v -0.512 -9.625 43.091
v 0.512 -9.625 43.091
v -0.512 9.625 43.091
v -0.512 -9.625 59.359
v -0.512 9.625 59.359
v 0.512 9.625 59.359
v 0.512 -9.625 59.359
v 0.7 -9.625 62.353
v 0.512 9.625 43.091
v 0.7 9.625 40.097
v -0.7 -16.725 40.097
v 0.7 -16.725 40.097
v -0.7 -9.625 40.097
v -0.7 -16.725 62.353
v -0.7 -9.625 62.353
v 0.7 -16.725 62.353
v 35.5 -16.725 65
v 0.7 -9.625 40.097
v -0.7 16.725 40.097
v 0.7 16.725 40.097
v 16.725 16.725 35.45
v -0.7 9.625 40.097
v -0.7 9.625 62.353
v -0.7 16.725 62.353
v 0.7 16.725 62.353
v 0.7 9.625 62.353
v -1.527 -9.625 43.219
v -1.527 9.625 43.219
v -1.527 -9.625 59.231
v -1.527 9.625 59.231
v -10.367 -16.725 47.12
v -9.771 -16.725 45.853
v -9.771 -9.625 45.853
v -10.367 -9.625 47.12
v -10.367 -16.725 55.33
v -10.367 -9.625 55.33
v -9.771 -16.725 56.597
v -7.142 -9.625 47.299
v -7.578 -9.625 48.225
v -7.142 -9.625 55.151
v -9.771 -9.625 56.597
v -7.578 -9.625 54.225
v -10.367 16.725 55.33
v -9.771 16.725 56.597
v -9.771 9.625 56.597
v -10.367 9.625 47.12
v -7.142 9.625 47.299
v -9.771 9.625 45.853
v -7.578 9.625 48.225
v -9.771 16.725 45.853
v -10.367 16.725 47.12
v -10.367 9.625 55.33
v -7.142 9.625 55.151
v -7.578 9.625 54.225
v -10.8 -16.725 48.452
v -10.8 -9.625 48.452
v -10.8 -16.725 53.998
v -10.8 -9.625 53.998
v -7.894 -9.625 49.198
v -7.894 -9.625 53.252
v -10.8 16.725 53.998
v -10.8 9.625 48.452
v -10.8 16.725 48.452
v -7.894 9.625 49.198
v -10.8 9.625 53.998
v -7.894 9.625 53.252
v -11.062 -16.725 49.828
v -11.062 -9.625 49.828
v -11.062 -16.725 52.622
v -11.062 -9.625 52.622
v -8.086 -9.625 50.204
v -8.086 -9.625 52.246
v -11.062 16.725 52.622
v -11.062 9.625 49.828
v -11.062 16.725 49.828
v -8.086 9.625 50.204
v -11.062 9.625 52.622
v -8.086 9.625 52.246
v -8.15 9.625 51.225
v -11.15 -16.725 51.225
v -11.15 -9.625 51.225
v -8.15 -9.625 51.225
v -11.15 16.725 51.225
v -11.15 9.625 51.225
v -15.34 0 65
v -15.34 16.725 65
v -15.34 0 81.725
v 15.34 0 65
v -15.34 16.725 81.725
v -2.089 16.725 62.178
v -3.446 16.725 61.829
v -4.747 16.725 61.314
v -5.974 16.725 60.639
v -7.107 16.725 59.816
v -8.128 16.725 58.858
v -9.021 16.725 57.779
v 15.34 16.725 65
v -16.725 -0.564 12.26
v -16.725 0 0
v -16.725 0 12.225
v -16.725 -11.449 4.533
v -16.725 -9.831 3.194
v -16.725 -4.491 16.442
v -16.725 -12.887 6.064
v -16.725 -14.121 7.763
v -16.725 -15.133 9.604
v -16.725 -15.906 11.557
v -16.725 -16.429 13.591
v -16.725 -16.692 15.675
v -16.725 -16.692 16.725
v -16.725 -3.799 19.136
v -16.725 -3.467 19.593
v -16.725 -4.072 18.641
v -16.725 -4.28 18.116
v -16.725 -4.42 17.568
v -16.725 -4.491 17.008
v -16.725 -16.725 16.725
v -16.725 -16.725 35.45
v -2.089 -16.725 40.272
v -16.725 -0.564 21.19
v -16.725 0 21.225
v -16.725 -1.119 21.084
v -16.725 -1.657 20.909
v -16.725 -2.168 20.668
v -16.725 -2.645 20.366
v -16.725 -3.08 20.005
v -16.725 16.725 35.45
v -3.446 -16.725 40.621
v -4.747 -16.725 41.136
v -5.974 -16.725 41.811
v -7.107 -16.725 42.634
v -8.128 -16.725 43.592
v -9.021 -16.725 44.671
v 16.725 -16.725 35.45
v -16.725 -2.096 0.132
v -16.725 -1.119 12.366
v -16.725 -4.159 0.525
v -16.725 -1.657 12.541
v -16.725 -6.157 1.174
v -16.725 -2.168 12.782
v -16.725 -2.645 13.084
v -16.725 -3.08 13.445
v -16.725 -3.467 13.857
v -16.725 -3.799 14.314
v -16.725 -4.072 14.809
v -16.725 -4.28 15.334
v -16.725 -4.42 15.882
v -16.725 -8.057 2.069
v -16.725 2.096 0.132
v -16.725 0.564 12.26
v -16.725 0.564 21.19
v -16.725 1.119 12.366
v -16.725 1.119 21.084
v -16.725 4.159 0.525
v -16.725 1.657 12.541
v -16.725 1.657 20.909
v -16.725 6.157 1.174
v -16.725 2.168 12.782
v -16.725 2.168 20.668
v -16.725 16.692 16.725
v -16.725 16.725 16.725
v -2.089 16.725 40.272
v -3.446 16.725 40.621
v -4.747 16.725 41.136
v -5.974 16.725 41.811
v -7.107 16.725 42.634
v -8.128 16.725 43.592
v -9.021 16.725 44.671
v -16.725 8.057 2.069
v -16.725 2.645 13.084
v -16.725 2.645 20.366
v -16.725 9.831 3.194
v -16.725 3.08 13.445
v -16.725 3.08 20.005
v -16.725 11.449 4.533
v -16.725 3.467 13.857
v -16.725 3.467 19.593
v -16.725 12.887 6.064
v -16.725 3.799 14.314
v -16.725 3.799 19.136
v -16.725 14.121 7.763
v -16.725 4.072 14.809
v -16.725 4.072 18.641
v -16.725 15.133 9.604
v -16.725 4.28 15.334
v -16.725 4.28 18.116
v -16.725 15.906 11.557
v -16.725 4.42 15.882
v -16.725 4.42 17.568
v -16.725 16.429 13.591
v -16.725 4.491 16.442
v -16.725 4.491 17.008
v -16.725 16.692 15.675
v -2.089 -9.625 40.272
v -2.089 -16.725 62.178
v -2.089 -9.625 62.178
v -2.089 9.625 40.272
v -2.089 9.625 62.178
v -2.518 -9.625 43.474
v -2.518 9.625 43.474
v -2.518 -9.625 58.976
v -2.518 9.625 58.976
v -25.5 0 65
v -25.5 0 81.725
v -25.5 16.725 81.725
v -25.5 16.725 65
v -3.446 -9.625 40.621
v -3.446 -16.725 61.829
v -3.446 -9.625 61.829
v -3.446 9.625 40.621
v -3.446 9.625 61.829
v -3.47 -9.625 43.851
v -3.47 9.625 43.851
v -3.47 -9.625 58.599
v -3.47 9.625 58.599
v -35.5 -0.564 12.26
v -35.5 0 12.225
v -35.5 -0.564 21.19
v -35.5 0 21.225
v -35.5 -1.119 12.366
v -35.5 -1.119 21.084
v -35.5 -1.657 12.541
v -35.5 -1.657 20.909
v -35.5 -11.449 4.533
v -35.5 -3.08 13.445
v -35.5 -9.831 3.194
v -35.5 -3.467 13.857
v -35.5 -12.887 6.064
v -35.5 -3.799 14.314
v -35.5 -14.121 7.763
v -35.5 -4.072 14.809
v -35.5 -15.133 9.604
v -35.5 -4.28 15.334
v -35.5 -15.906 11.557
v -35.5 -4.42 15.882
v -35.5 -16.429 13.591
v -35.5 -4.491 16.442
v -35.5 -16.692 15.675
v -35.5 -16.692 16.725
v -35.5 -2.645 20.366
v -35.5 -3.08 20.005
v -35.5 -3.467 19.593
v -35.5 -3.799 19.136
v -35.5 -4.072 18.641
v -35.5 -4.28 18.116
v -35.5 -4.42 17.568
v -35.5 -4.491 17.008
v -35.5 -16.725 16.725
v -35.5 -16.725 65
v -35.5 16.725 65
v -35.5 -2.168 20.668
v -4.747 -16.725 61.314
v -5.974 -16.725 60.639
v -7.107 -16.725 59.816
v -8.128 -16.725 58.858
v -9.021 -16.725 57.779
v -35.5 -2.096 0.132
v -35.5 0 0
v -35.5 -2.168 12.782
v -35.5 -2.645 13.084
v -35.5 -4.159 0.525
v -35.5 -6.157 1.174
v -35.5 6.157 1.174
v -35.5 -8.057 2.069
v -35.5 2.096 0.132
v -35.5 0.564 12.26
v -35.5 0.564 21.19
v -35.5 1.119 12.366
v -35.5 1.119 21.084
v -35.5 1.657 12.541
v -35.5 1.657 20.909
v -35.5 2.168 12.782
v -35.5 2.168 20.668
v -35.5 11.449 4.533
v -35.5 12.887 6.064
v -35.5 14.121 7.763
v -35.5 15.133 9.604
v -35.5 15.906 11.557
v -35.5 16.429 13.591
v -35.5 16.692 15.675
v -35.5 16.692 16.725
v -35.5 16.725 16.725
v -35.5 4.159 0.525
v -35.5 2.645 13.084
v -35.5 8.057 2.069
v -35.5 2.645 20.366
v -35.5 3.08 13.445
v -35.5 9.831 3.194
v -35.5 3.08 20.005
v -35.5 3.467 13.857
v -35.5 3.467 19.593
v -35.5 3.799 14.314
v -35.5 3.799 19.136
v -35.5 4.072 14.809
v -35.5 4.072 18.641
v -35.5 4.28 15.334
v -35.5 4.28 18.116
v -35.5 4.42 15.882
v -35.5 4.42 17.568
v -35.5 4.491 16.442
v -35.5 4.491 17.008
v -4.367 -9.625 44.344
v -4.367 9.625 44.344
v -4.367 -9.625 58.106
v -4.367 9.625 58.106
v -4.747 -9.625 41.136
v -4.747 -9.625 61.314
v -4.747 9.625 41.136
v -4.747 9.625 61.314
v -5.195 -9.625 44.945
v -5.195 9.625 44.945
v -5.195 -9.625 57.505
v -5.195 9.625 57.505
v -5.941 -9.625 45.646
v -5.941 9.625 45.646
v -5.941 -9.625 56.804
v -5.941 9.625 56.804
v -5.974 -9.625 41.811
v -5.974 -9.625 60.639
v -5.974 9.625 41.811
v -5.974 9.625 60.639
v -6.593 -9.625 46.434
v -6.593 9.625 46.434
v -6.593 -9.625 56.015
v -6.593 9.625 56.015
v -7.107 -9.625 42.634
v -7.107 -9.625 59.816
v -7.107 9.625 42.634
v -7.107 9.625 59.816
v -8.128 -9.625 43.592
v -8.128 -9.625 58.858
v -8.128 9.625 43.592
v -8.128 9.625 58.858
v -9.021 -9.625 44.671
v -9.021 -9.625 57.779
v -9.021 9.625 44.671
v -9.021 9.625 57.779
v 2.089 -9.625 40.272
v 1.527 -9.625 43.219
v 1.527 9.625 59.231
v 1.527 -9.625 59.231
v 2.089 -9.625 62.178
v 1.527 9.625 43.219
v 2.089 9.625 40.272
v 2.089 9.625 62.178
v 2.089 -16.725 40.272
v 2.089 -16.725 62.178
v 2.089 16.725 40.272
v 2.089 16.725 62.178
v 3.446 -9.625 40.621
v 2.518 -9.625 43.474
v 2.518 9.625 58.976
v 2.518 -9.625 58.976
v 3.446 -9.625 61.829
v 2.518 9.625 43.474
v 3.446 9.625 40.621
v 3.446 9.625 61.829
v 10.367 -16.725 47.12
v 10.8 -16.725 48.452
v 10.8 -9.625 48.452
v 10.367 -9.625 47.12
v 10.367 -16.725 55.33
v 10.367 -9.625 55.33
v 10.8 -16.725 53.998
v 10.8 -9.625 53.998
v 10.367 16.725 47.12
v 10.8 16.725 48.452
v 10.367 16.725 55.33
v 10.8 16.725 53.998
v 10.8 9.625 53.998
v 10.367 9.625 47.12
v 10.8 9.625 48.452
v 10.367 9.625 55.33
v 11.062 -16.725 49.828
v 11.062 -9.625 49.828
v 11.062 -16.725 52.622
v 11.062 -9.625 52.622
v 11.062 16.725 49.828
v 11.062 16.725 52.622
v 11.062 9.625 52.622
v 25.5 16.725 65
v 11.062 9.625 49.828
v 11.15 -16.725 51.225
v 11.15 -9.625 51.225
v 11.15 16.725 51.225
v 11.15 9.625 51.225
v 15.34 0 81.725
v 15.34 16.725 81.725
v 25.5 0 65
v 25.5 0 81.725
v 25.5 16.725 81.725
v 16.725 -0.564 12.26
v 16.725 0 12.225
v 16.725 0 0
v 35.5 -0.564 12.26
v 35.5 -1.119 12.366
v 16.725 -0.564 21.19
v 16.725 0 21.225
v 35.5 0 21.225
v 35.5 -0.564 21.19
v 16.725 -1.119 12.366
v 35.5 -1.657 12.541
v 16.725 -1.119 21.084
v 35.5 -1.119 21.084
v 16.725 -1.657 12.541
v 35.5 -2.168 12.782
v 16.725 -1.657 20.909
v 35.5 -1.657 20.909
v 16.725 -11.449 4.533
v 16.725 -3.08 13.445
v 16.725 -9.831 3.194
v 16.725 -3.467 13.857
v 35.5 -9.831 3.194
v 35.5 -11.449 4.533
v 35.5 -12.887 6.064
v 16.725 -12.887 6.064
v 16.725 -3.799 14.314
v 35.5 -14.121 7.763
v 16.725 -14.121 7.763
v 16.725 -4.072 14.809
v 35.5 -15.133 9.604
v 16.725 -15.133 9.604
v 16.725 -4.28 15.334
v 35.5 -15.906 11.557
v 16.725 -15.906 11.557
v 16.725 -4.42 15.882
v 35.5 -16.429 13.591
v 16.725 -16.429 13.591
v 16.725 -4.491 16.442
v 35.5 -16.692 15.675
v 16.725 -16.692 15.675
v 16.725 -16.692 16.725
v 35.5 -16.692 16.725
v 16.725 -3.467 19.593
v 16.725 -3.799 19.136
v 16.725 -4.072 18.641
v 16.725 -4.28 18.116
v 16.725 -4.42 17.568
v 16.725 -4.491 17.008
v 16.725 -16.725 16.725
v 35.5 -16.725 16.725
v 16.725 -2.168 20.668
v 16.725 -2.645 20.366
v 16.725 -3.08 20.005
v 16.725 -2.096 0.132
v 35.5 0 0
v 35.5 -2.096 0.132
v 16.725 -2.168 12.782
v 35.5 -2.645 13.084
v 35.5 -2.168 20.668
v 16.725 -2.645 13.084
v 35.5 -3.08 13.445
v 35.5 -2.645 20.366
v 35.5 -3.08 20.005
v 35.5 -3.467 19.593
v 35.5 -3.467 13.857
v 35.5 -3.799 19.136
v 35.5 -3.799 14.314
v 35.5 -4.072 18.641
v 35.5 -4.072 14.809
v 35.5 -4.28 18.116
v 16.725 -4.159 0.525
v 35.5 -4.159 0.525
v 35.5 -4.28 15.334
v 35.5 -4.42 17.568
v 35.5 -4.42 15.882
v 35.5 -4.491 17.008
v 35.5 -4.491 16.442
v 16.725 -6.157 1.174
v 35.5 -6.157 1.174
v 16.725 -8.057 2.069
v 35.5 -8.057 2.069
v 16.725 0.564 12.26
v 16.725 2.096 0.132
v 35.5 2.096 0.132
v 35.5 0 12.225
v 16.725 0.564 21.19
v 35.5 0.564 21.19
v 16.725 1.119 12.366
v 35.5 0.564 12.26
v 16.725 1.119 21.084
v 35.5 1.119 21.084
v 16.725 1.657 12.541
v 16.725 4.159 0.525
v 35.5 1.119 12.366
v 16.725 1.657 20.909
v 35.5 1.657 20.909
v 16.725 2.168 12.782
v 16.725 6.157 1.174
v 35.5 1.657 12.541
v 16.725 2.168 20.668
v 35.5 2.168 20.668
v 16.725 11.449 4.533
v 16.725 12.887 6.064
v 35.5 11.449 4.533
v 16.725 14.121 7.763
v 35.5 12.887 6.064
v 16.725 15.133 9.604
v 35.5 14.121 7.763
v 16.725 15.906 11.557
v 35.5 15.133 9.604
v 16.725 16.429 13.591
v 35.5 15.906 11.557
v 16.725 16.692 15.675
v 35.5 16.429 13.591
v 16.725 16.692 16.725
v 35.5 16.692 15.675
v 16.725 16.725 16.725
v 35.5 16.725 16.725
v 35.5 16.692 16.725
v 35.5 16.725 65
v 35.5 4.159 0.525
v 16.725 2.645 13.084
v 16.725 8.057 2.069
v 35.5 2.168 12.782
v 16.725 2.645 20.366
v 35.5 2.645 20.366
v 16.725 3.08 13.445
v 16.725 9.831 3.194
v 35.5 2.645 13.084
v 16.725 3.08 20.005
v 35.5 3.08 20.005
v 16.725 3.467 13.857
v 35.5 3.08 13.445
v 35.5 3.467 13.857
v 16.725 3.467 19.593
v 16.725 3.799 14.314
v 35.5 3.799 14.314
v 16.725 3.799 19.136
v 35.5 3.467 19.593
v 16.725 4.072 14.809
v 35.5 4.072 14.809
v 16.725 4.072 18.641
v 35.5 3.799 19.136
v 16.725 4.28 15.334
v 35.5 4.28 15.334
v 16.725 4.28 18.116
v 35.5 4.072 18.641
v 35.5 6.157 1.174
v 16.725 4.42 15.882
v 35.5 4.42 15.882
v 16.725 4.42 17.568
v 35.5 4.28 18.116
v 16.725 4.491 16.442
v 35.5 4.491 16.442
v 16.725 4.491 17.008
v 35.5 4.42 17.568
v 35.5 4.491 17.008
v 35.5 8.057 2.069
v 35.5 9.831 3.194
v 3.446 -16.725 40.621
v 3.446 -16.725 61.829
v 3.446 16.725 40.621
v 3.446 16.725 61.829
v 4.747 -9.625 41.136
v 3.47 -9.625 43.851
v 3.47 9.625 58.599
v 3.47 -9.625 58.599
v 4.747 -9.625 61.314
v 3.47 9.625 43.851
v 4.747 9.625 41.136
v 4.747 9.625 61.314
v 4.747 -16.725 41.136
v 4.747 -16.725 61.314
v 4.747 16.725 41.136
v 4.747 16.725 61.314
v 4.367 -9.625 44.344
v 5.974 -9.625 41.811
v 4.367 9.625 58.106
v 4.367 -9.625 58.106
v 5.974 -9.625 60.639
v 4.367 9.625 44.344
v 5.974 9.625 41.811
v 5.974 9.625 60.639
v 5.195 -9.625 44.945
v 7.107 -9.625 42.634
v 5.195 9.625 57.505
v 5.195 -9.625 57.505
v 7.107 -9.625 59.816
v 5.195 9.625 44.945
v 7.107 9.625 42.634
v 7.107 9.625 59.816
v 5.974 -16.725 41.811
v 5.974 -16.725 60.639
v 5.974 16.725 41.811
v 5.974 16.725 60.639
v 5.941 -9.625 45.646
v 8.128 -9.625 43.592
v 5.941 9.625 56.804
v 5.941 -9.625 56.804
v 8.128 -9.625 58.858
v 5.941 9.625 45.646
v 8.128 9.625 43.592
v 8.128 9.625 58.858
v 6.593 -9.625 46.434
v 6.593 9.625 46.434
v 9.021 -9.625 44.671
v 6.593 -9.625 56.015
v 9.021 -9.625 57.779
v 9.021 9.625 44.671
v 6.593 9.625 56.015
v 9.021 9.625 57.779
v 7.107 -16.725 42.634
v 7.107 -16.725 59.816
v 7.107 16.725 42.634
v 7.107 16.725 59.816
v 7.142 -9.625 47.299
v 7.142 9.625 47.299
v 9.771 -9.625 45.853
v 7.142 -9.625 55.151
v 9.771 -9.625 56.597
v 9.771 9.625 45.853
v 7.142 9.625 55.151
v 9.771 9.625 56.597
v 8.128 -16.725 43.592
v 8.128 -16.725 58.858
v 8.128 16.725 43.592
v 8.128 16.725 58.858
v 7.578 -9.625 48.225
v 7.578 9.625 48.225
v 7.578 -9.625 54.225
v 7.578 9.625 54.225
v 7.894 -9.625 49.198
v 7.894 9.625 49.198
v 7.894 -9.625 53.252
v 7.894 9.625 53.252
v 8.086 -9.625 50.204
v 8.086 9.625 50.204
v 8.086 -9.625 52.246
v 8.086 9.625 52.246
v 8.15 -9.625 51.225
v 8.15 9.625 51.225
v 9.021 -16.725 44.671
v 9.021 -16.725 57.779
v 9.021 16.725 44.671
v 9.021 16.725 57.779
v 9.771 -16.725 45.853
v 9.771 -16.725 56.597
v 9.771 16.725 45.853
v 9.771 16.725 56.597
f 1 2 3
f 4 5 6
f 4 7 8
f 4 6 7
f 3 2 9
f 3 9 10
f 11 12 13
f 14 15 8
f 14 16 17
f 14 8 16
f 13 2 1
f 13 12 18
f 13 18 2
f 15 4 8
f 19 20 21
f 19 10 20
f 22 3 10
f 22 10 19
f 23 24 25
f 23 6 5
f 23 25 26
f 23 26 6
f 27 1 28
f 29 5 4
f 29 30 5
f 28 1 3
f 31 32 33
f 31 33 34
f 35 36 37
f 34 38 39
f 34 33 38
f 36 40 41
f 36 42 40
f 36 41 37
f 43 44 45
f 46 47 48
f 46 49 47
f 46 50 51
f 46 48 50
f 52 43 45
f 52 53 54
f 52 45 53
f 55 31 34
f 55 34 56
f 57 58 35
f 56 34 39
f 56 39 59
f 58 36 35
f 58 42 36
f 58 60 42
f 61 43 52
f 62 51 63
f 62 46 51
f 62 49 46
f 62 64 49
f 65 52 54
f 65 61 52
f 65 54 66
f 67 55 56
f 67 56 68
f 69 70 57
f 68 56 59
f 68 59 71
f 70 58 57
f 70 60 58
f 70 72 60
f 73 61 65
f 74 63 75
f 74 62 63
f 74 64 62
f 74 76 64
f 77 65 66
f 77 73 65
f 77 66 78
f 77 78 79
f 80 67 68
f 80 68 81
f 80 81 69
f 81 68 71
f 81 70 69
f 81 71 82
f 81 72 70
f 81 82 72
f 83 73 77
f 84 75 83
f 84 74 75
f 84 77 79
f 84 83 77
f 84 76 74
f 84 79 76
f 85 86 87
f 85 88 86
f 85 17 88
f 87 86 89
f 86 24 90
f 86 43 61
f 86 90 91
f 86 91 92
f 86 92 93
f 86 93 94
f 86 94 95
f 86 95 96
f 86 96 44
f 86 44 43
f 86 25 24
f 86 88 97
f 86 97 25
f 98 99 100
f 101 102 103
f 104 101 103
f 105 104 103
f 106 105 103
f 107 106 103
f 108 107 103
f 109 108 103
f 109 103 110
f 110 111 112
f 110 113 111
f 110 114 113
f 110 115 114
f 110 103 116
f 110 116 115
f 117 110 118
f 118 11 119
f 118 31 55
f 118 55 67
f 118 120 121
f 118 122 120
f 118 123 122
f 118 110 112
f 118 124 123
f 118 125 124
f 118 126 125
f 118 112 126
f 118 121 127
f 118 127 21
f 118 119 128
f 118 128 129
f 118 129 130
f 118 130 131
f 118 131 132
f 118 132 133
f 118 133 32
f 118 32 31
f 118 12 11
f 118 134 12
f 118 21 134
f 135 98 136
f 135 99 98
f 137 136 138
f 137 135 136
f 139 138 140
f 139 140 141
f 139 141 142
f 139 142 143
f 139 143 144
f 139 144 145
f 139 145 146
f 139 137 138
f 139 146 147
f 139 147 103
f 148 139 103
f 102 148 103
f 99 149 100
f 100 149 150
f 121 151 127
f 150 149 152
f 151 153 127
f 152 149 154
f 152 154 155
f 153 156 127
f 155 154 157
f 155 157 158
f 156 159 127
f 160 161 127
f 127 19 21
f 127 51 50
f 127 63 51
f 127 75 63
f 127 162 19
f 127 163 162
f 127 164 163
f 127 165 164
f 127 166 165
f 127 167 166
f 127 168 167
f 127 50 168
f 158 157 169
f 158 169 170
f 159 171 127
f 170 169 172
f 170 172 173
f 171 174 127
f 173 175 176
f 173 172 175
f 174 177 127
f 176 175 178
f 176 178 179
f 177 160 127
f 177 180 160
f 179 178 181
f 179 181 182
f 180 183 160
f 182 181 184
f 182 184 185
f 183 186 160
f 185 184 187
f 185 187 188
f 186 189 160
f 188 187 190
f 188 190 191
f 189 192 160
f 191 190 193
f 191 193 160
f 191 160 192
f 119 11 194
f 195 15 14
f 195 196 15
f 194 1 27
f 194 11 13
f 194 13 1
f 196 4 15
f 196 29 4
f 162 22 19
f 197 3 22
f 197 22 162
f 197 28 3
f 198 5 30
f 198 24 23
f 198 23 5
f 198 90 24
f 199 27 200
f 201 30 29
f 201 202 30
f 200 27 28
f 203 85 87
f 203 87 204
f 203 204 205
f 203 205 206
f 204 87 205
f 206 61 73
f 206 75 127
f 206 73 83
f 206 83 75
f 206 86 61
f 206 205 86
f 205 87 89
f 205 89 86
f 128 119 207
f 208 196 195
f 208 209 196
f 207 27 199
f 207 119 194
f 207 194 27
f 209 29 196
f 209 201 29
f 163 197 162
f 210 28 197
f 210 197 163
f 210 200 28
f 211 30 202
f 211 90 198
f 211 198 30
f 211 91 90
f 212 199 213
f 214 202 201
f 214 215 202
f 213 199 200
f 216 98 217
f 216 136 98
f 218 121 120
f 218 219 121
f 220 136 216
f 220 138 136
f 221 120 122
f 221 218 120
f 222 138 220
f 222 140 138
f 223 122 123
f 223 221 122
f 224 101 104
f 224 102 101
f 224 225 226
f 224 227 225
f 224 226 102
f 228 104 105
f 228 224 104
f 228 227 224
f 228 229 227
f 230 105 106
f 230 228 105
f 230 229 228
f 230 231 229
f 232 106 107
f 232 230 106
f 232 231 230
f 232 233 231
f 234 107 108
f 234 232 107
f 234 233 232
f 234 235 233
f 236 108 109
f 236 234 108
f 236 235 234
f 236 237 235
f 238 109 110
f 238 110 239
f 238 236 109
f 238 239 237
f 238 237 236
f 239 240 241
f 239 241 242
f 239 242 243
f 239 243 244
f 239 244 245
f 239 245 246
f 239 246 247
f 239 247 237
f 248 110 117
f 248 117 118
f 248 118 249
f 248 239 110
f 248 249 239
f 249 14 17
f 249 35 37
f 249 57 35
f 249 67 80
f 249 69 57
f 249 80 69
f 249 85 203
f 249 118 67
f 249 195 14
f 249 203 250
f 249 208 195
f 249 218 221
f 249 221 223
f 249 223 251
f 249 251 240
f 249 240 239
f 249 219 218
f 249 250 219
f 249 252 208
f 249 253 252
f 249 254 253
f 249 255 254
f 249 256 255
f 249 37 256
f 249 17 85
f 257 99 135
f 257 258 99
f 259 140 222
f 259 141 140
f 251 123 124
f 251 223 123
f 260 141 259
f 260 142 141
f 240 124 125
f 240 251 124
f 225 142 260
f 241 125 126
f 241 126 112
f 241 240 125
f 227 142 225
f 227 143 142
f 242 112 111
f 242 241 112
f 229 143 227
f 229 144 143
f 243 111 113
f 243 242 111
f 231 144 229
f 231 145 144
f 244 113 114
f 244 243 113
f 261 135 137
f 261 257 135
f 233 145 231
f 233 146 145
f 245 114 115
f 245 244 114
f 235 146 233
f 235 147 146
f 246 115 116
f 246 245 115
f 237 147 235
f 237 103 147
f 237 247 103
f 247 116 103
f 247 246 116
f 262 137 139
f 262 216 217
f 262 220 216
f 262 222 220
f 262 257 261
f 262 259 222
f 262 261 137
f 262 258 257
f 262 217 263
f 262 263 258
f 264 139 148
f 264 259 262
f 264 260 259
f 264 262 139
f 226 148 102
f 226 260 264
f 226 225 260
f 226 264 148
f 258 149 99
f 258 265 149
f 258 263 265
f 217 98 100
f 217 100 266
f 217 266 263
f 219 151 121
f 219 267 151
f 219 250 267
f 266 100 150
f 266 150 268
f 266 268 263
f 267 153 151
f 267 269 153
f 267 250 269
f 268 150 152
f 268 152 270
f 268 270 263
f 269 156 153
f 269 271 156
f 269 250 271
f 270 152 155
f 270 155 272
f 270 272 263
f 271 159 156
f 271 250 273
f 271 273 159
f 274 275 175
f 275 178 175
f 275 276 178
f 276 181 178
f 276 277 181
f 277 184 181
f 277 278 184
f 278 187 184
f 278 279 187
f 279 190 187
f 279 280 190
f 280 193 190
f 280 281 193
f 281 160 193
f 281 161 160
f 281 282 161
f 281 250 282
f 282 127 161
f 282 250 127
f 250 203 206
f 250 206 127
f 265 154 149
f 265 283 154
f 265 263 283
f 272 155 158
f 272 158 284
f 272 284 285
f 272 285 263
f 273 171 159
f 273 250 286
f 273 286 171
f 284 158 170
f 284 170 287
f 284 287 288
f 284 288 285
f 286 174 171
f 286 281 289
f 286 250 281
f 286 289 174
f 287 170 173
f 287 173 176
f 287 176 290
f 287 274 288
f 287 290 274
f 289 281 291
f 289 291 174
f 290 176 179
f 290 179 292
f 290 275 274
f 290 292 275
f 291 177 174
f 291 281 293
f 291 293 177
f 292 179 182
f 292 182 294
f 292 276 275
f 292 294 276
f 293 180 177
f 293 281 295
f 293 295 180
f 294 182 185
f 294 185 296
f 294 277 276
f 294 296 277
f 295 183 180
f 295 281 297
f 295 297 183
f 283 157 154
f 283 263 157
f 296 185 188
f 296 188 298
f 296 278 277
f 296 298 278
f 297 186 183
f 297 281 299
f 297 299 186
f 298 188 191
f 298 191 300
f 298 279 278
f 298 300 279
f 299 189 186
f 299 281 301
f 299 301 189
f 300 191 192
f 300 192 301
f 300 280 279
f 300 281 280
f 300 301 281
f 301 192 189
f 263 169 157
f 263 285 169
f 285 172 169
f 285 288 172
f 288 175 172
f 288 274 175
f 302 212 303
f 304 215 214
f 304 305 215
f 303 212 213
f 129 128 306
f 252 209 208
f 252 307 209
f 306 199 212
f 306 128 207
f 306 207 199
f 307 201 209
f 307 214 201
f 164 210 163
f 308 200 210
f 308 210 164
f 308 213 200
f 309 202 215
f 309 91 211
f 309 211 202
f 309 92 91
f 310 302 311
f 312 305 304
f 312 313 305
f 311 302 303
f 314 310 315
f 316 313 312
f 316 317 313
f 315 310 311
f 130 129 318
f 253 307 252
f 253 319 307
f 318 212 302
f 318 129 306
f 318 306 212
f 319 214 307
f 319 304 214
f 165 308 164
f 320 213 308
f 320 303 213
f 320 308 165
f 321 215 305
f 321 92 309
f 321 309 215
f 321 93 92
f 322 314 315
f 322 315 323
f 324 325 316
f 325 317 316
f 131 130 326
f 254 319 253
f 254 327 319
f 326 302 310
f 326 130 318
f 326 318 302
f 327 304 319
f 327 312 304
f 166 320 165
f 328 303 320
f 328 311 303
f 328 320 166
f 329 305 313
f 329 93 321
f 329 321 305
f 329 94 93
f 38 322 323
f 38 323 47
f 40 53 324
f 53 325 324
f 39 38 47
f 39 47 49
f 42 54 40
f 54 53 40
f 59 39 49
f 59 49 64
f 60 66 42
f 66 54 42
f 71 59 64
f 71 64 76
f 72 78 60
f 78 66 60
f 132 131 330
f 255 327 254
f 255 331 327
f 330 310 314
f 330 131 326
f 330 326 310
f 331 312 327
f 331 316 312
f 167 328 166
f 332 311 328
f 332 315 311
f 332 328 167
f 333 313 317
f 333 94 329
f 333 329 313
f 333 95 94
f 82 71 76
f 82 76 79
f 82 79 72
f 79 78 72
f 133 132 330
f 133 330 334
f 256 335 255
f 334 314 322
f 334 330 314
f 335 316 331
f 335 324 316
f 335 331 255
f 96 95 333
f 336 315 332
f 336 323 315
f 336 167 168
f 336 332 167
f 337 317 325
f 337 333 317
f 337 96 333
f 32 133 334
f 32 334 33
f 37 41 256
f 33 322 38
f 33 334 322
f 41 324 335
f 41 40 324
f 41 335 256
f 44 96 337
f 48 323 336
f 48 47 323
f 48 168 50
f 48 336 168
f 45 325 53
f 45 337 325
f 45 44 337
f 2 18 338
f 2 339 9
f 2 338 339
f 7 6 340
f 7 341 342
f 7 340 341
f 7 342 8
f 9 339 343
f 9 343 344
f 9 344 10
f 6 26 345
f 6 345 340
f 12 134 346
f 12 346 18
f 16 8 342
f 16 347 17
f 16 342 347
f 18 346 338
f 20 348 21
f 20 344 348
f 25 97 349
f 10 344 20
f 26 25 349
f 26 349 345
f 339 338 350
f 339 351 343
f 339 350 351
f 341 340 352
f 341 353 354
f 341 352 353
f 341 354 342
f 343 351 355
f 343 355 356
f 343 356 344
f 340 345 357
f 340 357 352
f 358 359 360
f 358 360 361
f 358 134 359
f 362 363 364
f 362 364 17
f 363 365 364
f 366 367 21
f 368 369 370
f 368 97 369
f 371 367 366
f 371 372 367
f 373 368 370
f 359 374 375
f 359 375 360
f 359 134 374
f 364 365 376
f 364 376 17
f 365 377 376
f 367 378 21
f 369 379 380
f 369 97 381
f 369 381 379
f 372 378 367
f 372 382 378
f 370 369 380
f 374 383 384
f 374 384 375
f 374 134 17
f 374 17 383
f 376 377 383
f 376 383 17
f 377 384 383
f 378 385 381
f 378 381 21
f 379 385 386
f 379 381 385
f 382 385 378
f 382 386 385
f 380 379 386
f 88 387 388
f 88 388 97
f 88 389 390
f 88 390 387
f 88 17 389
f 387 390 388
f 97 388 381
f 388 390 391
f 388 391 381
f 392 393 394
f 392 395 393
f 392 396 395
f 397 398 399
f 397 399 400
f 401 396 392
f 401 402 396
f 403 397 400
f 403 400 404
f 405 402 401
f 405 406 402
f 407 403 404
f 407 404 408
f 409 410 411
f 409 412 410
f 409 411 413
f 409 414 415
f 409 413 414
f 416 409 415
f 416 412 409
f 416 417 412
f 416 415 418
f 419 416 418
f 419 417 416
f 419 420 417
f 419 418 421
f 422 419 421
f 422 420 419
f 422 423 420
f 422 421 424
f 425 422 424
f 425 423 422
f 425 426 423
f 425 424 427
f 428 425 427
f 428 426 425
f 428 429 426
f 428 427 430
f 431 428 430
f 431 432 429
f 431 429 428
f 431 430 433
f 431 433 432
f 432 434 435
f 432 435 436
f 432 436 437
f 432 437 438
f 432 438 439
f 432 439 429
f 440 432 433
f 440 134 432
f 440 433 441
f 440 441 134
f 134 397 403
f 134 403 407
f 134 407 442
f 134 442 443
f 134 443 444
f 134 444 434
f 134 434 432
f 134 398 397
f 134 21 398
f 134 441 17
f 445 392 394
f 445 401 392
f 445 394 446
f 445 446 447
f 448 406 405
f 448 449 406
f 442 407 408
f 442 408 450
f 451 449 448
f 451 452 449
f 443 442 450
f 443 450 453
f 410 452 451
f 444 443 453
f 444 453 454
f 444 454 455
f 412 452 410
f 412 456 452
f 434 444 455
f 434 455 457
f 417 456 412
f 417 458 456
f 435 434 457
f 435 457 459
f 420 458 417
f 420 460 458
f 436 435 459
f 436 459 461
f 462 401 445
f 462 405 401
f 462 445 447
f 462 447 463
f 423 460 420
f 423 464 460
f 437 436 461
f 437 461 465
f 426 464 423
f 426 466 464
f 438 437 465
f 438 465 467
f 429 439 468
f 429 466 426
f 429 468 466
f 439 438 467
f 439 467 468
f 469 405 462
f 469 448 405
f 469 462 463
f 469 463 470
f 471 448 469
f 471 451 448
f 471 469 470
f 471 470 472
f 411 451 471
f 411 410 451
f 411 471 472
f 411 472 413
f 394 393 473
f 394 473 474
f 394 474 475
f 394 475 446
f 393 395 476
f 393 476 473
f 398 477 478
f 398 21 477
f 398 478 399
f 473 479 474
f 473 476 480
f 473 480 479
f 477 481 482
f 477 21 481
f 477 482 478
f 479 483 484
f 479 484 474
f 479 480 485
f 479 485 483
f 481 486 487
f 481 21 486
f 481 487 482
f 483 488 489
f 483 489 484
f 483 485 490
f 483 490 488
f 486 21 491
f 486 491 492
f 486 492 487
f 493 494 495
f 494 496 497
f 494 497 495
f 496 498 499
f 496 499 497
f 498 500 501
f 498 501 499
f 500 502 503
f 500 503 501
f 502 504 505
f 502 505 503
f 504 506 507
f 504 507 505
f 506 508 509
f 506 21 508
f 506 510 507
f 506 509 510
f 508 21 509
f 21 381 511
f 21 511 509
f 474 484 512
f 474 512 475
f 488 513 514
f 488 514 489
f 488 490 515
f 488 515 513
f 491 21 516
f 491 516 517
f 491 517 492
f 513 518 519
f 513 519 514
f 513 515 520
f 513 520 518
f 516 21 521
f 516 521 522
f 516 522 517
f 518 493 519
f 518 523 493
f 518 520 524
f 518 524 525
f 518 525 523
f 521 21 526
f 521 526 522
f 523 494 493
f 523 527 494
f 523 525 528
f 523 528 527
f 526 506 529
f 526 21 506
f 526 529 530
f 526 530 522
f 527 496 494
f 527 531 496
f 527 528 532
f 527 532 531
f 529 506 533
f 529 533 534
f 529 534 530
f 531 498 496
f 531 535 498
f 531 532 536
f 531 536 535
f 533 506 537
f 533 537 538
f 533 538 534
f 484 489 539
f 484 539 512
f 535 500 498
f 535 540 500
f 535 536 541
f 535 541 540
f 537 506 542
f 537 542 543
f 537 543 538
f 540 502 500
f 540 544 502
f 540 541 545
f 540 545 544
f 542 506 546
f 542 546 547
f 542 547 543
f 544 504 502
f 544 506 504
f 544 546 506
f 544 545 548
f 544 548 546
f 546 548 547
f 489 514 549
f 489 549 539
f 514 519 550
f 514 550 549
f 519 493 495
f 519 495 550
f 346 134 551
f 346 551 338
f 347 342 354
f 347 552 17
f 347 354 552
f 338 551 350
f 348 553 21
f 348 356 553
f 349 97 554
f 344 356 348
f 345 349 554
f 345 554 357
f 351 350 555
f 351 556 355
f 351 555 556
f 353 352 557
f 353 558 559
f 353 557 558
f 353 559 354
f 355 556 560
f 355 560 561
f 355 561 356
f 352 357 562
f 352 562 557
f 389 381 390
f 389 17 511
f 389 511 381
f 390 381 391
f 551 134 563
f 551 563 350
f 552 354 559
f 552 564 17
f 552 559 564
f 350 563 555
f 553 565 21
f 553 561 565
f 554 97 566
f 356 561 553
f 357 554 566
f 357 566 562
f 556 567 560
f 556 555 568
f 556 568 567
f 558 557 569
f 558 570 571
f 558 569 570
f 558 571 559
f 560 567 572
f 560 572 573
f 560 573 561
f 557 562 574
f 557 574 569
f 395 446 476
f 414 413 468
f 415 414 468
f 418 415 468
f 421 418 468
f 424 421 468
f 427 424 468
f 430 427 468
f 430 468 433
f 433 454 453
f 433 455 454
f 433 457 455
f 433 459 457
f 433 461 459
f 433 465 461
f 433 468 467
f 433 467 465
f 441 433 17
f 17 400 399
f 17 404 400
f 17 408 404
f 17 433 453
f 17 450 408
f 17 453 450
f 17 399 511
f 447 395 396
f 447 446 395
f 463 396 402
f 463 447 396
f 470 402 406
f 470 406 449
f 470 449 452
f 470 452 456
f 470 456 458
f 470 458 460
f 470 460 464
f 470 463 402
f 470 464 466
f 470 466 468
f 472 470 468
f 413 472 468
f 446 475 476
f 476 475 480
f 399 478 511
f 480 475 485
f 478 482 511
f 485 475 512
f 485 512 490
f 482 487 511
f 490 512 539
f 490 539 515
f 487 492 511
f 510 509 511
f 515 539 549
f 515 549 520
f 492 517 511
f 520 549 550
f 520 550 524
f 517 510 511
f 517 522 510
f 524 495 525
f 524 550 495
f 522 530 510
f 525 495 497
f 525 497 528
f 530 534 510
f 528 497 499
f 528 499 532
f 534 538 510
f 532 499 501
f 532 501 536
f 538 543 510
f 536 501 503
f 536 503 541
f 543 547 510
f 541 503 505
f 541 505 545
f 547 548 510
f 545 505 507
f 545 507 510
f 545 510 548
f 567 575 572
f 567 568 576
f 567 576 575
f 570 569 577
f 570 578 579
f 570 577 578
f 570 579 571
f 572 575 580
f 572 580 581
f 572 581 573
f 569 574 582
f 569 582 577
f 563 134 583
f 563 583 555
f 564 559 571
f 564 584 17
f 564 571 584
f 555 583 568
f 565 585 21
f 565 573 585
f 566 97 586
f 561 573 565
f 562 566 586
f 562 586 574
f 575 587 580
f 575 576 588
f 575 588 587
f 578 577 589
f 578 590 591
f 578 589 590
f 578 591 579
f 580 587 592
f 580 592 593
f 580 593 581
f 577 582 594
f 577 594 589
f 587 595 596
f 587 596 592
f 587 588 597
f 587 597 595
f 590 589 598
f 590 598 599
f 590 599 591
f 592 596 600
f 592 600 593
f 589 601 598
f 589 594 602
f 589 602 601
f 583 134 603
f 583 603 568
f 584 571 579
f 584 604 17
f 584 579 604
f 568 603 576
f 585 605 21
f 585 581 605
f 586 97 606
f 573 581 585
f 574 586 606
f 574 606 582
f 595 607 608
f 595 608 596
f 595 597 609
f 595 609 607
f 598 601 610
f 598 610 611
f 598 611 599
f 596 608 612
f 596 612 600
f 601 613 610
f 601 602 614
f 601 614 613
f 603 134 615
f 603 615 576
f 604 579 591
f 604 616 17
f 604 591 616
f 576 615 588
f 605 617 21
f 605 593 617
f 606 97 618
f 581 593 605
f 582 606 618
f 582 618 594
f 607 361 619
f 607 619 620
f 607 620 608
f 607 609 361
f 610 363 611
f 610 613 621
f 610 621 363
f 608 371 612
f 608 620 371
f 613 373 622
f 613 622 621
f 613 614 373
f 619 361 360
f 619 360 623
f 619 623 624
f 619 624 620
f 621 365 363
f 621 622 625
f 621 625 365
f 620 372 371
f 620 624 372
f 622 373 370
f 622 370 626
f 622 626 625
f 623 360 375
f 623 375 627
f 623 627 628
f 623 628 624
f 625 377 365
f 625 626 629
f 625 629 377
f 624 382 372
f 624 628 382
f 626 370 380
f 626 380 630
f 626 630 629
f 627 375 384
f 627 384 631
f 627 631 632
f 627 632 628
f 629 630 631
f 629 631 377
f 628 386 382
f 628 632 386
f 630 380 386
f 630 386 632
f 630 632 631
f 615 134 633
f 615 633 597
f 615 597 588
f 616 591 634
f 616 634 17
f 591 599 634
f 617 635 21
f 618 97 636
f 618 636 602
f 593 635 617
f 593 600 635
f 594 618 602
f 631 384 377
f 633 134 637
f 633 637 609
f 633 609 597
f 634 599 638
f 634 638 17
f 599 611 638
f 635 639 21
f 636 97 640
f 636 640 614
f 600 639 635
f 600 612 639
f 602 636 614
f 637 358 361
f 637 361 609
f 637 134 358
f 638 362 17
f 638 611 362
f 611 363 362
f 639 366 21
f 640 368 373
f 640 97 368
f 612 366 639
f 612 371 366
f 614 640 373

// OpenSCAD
// file: 888_3002.scad
draft = true;

module 888_3002(draft){

cone_radius_one = 65;
cone_radius_two = 30;
cone_height = 40;
cylinder_height = 10;

whole_length = cone_height + cylinder_height;

//lícovaný šroub  M6
shank_diameter = 8 + 1 ;		//průměr dříku + tolerance pro díru
whole_screw_length  = 56; 		//celková délka
thread_length = 11;				//délka závitu
thread_diameter = 6; 
length_screw_behind_nut = 3;
head_screw_diameter = 13 + 0.2;		//průměr válcové hlavy šroubu
head_screw_height = 8 + 0.2;		//výška válcové hlavy šroubu

width = 608_bearing_outer_diameter*1.5;
height = whole_length;

difference(){

//základní kostka
			union(){
				translate([- width/2,- width/2,0])
						cube([width,width,height]);
				translate([0,width/2,height])
					rotate([90,0,0])
						cylinder(h = width, r = width/2, $fn = draft ? 50 : 100);
			}

//otvor pro lícovaný šroub z dílu 2
	translate([0,width/2 + global_clearance/2,height])
		rotate([90,0,0])
			cylinder (h = width + global_clearance, r = shank_diameter/2, $fn = draft ? 50 : 100);

//otvor pro závitovou tyč M8
	translate([0,0,height*0.4])
			union(){
				translate([- width/2 - global_clearance/2,0,0])
					rotate([0,90,0])
						cylinder(h = width + global_clearance, r = M8_screw_diameter/2, $fn = draft ? 50 : 100);

			//otvory pro ložiska 608
				translate([width/2 - 608_bearing_thickness,0,0])
					rotate([0,90,0])
						cylinder(h = 608_bearing_thickness + global_clearance, r = 608_bearing_outer_diameter/2, $fn = draft ? 50:100);
				
				translate([- width/2 - global_clearance,0,0])
					rotate([0,90,0])
						cylinder(h = 608_bearing_thickness + global_clearance, r = 608_bearing_outer_diameter/2, $fn = draft ? 50:100);
			}
}



}


888_3002(draft);




use <./lib/naca4.scad>
include <../Parameters.scad>
// file: 888_3001.scad
draft = true;

module 888_3001(draft){		//druhý díl z issue 156 (ALT)

cone_radius_one = 65;
cone_radius_two = 45;
cone_height = 25;
cylinder_height = 10;

whole_length = cone_height + cylinder_height;
height_3001 = 90;

//lícovaný šroub  M6
shank_diameter = 8 + 1 ;		//průměr dříku + tolerance pro díru
screw_length = 30; // délka lícovaného sroubu
screw2_length = 70; // délka lícovaného sroubu
whole_screw_length = screw_length + 11+6; 		//celková délka
thread_length = 11;				//délka závitu
thread_diameter = 6; 
length_screw_behind_nut = 3;
head_screw_diameter = 13 + 0.2;		//průměr válcové hlavy šroubu
head_screw_height = 5.5 + 0.2;		//výška válcové hlavy šroubu
    

washer_diameter = 20;				//průměr podložky pod lícovaný šroub
washer_thickness = 1.5;

//rozměry dle dílu 888_3002
width = 608_bearing_outer_diameter*1.5;
height = whole_length*0.8;


//výška podstavy počítaná z celkové délky použitého lícovaného šroubu
height_of_base = whole_screw_length - whole_length;
echo(height_of_base);

		difference (){
			//hlavní podstavec
				cylinder(h = height_3001, r = cone_radius_two, $fn = draft ? 50 : 100);
            
                //průměr otvoru pro šroub BEZ podložky
                    //translate([0,0, whole_screw_length - whole_length - 6])
                    //cylinder(h = head_screw_height + global_clearance, r = head_screw_diameter/2, $fn = draft ? 50 : 100);
               ////průměr otvoru, pokud BUDE pod hlavou šroubu podložka
                    translate([0,0, whole_screw_length - whole_length-head_screw_height + washer_thickness])
                    cylinder (h = head_screw_height + washer_thickness + global_clearance, r = washer_diameter/2, $fn = draft ? 50 : 100);

                //otvor pro lícovaný šroub od dílu 1
                translate([0,0,-global_clearance])
                    cylinder ( h =  whole_screw_length - whole_length + head_screw_height + global_clearance, r = shank_diameter/2, $fn = draft ? 50 : 100);
                    
                translate([-width/2, -cone_radius_two,height_of_base])
                   cube([width, cone_radius_two*2, whole_length+height_of_base+whole_screw_length+global_clearance]);


                translate([0,0, height_3001-608_bearing_outer_diameter ]) rotate([0,90,0]) union(){
                   # translate([0, 0, -screw2_length/2]) cylinder(h = screw2_length+global_clearance*2, d = shank_diameter, $fn = draft ? 50 : 100);
                    translate([0,0, screw2_length/2])
                        cylinder (h = 100, d = 608_bearing_outer_diameter, $fn = draft ? 50 : 100);
                    translate([0,0, -100-screw2_length/2 -0.5])
                        cylinder (h = 100, d = 608_bearing_outer_diameter, $fn = draft ? 50 : 100);
                }

		}

//Kostka pro omezení rotace
translate([-cone_radius_two/8 - coupling_wall_thickness/2,cone_radius_two - coupling_wall_thickness/2,0])	
	cube([cone_radius_two/4 + coupling_wall_thickness,cone_radius_two/2 + coupling_wall_thickness,height_of_base]);
		
}

//translate([0,0,50])

888_3001(draft);

//888_3000(draft);
/*
translate([0,0,90])
	rotate([180,0,90])
		888_3002(draft);
*/

use <./lib/naca4.scad>
include <../Parameters.scad>
use <888_3000.scad>
use <888_3002.scad>
// file: 888_3000.scad
draft = true;


module 888_3000(draft){    /////// 1. díl (AZ, YAW)

cone_radius_one = 50;
cone_radius_two = 30;
cone_height = 40;
cylinder_height = 10;

whole_length = cone_height + cylinder_height;

//lícovaný šroub  M6
shank_diameter = 8 + 1 ;		//průměr dříku + tolerance pro díru
whole_screw_length  = 56; 		//celková délka
thread_length = 11;				//délka závitu
thread_diameter = 6; 
length_screw_behind_nut = 3;
head_screw_diameter = 13 + 0.2;		//průměr válcové hlavy šroubu
head_screw_height = 8 + 0.2;		//výška válcové hlavy šroubu

//samojistná šestihranná matice ISO 7040 - M6
lock_nut_diameter = 11.05; //výška samojistné matice pro průměr M6
lock_nut_height = 8; 

//šířka žebra
rib_thickness = 5;


difference(){

	union(){
				cylinder (h = cylinder_height, r = cone_radius_one, center = false, $fn = draft ? 50 : 100);
		translate([0,0,cylinder_height])
				cylinder(h = cone_height, r1 = cone_radius_one, r2 = cone_radius_two, center=false, $fn = draft ? 50 : 100);
	}

//šrouby pro uchycení
	translate([- cone_radius_one/2 - 3, - cone_radius_one/2 - 3,-global_clearance])	
			cylinder (h = whole_length + 2*global_clearance, r = M6_screw_diameter/2, $fn = draft ? 10 : 20);
	translate([ - cone_radius_one/2 - 3, cone_radius_one/2 + 3,-global_clearance])	
			cylinder (h = whole_length + 2*global_clearance, r = M6_screw_diameter/2, $fn = draft ? 10 : 20);
	translate([cone_radius_one/2 + 3,cone_radius_one/2 + 3,-global_clearance])	
			cylinder (h = whole_length + 2*global_clearance, r = M6_screw_diameter/2, $fn = draft ? 10 : 20);
	translate([cone_radius_one/2 + 3, - cone_radius_one/2 - 3,-global_clearance])	
			cylinder (h = whole_length +  2*global_clearance, r = M6_screw_diameter/2, $fn = draft ? 10 : 20);


//otvory pro ložiska
	//horní
	translate([0,0, whole_length - 608_bearing_thickness - global_clearance/2])
			cylinder (h = 608_bearing_thickness + global_clearance, r = 608_bearing_outer_diameter/2, $fn = draft ? 50 : 100);
	//spodní
	translate([0,0,- global_clearance/2])
			cylinder (h = 608_bearing_thickness + lock_nut_height + length_screw_behind_nut+ global_clearance, r = 608_bearing_outer_diameter/2, $fn = draft ? 50 : 100);

//otvor pro lícovaný šroub
	translate ([0,0,- global_clearance/2])
			cylinder (h = whole_screw_length + global_clearance, r = shank_diameter/2, $fn = draft ? 50 : 100);

//žebra
	difference(){
	//vybrání pro vznik čtyř žeber
		union(){
			translate([rib_thickness/2, rib_thickness/2,cylinder_height])
					cube ([cone_radius_one,cone_radius_one, whole_length]);
			translate([rib_thickness/2,- rib_thickness/2 - cone_radius_one,cylinder_height])
					cube ([cone_radius_one,cone_radius_one, whole_length]);
			translate([- rib_thickness/2 - cone_radius_one, rib_thickness/2,cylinder_height])
					cube ([cone_radius_one,cone_radius_one, whole_length]);
			translate([- rib_thickness/2 - cone_radius_one, - rib_thickness/2 - cone_radius_one,cylinder_height])
					cube ([cone_radius_one,cone_radius_one, whole_length]);
			}

	//kulateé uprostřed	
				cylinder(h = whole_length, r = cone_radius_two, $fn = draft ? 50 : 100);

	}

	}


}


888_3000(draft);

use <./lib/naca4.scad>
include <../Parameters.scad>
// file: 888_3005.scad
draft = true;

module 888_3005(){

width = 608_bearing_outer_diameter*1.5;


magnet_diameter = 63;

difference(){
	union(){
	//velikost magnetu
				cylinder (h = coupling_wall_thickness, r = magnet_diameter/2, $fn = draft ? 50 :100);
	//osazení uprostřed	
		translate([0,0,coupling_wall_thickness])
				cylinder (h = coupling_wall_thickness/4, r = 608_bearing_outer_diameter/4, $fn = draft ? 50 : 100);
	//trn
		translate([-width/4,magnet_diameter/2 - width/2,0])
				cube([width/2,width/3,width/2]);
	}
	
	//otvor uprostřed
	translate([0,0,-global_clearance])
			cylinder (h = 20, r = M8_screw_diameter/2, $fn = draft ? 50 : 100);

	//otvor v trnu
	translate([0,magnet_diameter/2 - (width/2)/2,-width/8])
			cylinder (h = width/2, r = M6_screw_diameter/2, $fn = draft ? 50 : 100);
	translate([0,magnet_diameter/2 - (width/2)/2,width/6])
			cylinder(h = Nut_height_M6, r = Nut_diameter_M6/2, $fn = 6);
	translate([-Nut_diameter_M6/2,magnet_diameter/2 - (width/2)/2,width/6])
			cube([Nut_diameter_M6, 20, Nut_height_M6]);
}


}


888_3005();

use <./lib/naca4.scad>
include <../Parameters.scad>
// file: 888_3003.scad
draft = true;

module 888_3003(){

cone_radius_one = 65;
cone_radius_two = 35;
cone_height = 40;
cylinder_height = 10;

whole_length = cone_height + cylinder_height;

//lícovaný šroub  M6
shank_diameter = 8 + 1 ;		//průměr dříku + tolerance pro díru
whole_screw_length  = 56; 		//celková délka
thread_length = 11;				//délka závitu
thread_diameter = 6; 
length_screw_behind_nut = 3;
head_screw_diameter = 13 + 0.2;		//průměr válcové hlavy šroubu
head_screw_height = 8 + 0.2;		//výška válcové hlavy šroubu

//samojistná šestihranná matice ISO 7040 - M6
lock_nut_diameter = 11.05; //výška samojistné matice pro průměr M6
lock_nut_height = 8; 

//šířka žebra
rib_thickness = 5;


width = 608_bearing_outer_diameter*1.5;
height = whole_length;

//výška podstavy počítaná z celkové délky použitého lícovaného šroubu - díl 888_3001
height_of_base = whole_screw_length - whole_length + head_screw_height;

////////// MODEL


			888_3000();

translate([0,0,whole_length])
	color([1,0,0])		
			888_3001();

translate([0,0,whole_length + height_of_base + width/2])
	color([0,0.5,0])
		rotate([0,0,90])
			888_3002();




}



888_3003();


use <./lib/naca4.scad>
include <../Parameters.scad>


use <888_3000.scad>
use <888_3001.scad>
use <888_3002.scad>
// file: lib/naca4.scad
// Naca4.scad - library for parametric airfoils of 4 digit NACA series
// Code: Rudolf Huttary, Berlin 
// June 2015
// commercial use prohibited


// general use: for more examples refer to sampler.scad
// naca = naca digits or 3el vector  (default = 12 or [0, 0, .12])
// L    = chord length [mm]      (default= 100)
// N    = # sample points        (default= 81)
// h    = height [mm]            (default= 1)
// open = close at the thin end? (default = true)
// two equivalent example calls
 airfoil(naca = 2408, L = 60, N=1001, h = 30, open = false); 
// airfoil(naca = [.2, .4, .32], L = 60, N=1001, h = 30, open = false); 

module help()
{
  echo(str("\n\nList of signatures in lib:\n=================\n", 
  "module airfoil(naca=2412, L = 100, N = 81, h = 1, open = false) - renders airfoil object\n", 
  "module airfoil(naca=[.2, .4, .12], L = 100, N = 81, h = 1, open = false) - renders airfoil object using percentage for camber,  camber distance and thicknes\n", 
  "function airfoil_data(naca=12, L = 100, N = 81, open = false)\n",
  "=================\n")); 
}

help(); 
// this is the object
module airfoil(naca=12, L = 100, N = 81, h = 1, open = false)
{
  linear_extrude(height = h)
  polygon(points = airfoil_data(naca, L, N, open)); 
}

module hollow_airfoil(lnaca=12, L = 100, N = 81, h = 1, open = false, wall_thickness = 1)
{
    if (open){
        linear_extrude(height = h)

        if (wall_thickness>0){
            difference(){
                polygon(points = airfoil_data(naca, L, N, false));
                offset(delta = - wall_thickness, chamfer = false) polygon(points = airfoil_data(naca, L, N, open = false));
            }
        }
        else{
            difference(){
                offset(delta = - wall_thickness, chamfer = false) polygon(points = airfoil_data(naca, L, N, open = false));
                polygon(points = airfoil_data(naca, L, N, false));
            }
        }
    }
    else{

        linear_extrude(height = abs(wall_thickness))
            polygon(points = airfoil_data(naca, L, N, false)); 

        linear_extrude(height = h)
            difference(){
                polygon(points = airfoil_data(naca, L, N, open));
                offset(delta = - wall_thickness) polygon(points = airfoil_data(naca, L, N, open = false));
            }

        translate([0,0, h - wall_thickness])
            linear_extrude(height = abs(wall_thickness))
                polygon(points = airfoil_data(naca, L, N, false)); 

    }
}


// this is the main function providing the airfoil data
function airfoil_data(naca=12, L = 100, N = 81, open = false) = 
  let(Na = len(naca)!=3?NACA(naca):naca)
  let(A = [.2969, -0.126, -.3516, .2843, open?-0.1015:-0.1036])
  [for (b=[-180:360/(N):179.99]) 
    let (x = (1-cos(b))/2)  
    let(yt = sign(b)*Na[2]/.2*(A*[sqrt(x), x, x*x, x*x*x, x*x*x*x])) 
    Na[0]==0?L*[x, yt]:L*camber(x, yt, Na[0], Na[1], sign(b))];  


function trailing_edge_angle(naca=12, open = false) = 
  let(Na = len(naca)!=3?NACA(naca):naca)
  let(A = [.2969, -0.126, -.3516, .2843, open?-0.1015:-0.1036])
  let (x =0.999)  // set x near to airfoil trailing edge
  let(yt = Na[2]/.2*(A*[sqrt(x), x, x*x, x*x*x, x*x*x*x])) // calculate distance from x-axis at previously set position
  atan2(yt,1-x);  // calculate angle of triangle between end of airfoil. The triange height corresponds to previously calculated distance from x-axis

function surface_angle(x = 0.5, naca=12, open = false) = 
  let(Na = len(naca)!=3?NACA(naca):naca)
  let(A = [0.2969, -0.126, -0.3516, 0.2843, open?-0.1015:-0.1036])
  let(dy = Na[2]/0.2*(A*[(1/2)*(1/sqrt(x)), 1, 2*x, 3*x*x, 4*x*x*x])) // calculate derivative of airfoil function at the x point
  atan(dy);  // calculate  the angle from function derivative

function surface_distance(x = 0.5, naca=12, open = false) = 
  let(Na = len(naca)!=3?NACA(naca):naca)
  let(A = [0.2969, -0.126, -0.3516, 0.2843, open?-0.1015:-0.1036])
  Na[2]/.2*(A*[sqrt(x), x, x*x, x*x*x, x*x*x*x]); // calculate distance from x-axis at previously set position

// helper functions
function NACA(naca) = 
  let (M = floor(naca/1000))
  let (P = floor((naca-M*1000)/100)) 
  [M/100, P/10, floor(naca-M*1000-P*100)/100];  

function camber(x, y, M, P, upper) = 
  let(yc = (x<P)?M/P/P*(2*P*x-x*x): M/(1-P)/(1-P)*(1 - 2*P + 2*P*x -x*x))
  let(dy = (x<P)?2*M/P/P*(P-x):2*M/(1-P)/(1-P)*(P-x))
  let(th = atan(dy))
  [upper ? x - y*sin(th):x + y*sin(th), upper ? yc + y*cos(th):yc - y*cos(th)];
// main file
draft = true;


module 888_3004(){  //díl 6 dle issue 156

width = 608_bearing_outer_diameter*1.5;
height = 65;

cube_Width = 71;
limit_offset = 10; // o kolik posunout zarazky do stredu
space = 1;

difference(){
	union(){
	//základní kostka
	translate([- cube_Width/2, -width/2,width/2])
			cube([cube_Width, width,height - width/2]);
	translate([-cube_Width/2,0,width/2])
		rotate([0,90,0])
			cylinder(h = cube_Width, r = width/2, $fn = draft ? 50 : 100);
	}
	//otvor od osy dílu 888_3003
	translate([- cube_Width/2- global_clearance/2,0, 608_bearing_outer_diameter*0.75])
		rotate([0,90,0])
			cylinder(h = cube_Width + global_clearance, r = M8_screw_diameter/2, $fn = draft ? 50 : 100);
	//vidlice
	translate([-width/2, - cube_Width/2 - global_clearance/2,-global_clearance])
			cube([width, cube_Width + global_clearance, width + global_clearance+space*2]);

//otvor pro šroub a ložiska
	translate([0,-width/2 + 608_bearing_thickness,width + (height - width)/2+space*2])
		rotate([90,0,0])
			cylinder(h = 608_bearing_thickness + global_clearance, r = 608_bearing_outer_diameter/2, $fn = draft ? 50 : 100);
	translate([0,width/2 + global_clearance,width + (height - width)/2+space*2])
		rotate([90,0,0])
			cylinder(h = 608_bearing_thickness + global_clearance, r = 608_bearing_outer_diameter/2, $fn = draft ? 50 : 100);
	translate([0,cube_Width,width + (height - width)/2+space*2])
		rotate([90,0,0])
			cylinder(h = cube_Width*2, d = 608_bearing_outer_diameter-6, $fn = draft ? 50 : 100);


}


//výstupky
difference(){
	union(){
	translate([cube_Width/2 - coupling_wall_thickness*2 - limit_offset,0,height])
			cube ([coupling_wall_thickness*2, width/2, width/2]);
	translate([-cube_Width/2 + limit_offset,0,height])
			cube ([coupling_wall_thickness*2, width/2, width/2]);
		}

translate([cube_Width/2,width/4,height + width/4])
	rotate([0,-90,0])
		union(){
			/*translate([0,0,-global_clearance/2])
					cylinder (h = cube_Width + global_clearance, r = M6_screw_diameter/2, $fn = draft ? 50 : 100);
			
            translate([0,0,coupling_wall_thickness/2-limit_offset])
				rotate([0,0,90])
					cylinder (h = Nut_height_M6, r = Nut_diameter_M6/2, $fn = 6);
			translate([0,-Nut_diameter_M6/2,  coupling_wall_thickness/2+limit_offset])
					cube([20, Nut_diameter_M6, Nut_height_M6]);

			translate([0,0,cube_Width - coupling_wall_thickness*1.5-limit_offset])
				rotate([0,0,90])
					cylinder (h = Nut_height_M6, r = Nut_diameter_M6/2, $fn = 6);
			translate([0,-Nut_diameter_M6/2, cube_Width -coupling_wall_thickness*1.5])
					cube([20, Nut_diameter_M6, Nut_height_M6]);*/
		}

}



}



888_3004();
/*
translate([0,0,-70])
		888_3003();
translate([0,22.1*0.75 + 5 +2,75 - 22.1 - 5])
	rotate([90,0,0])
		888_3005();
*/

use <./lib/naca4.scad>
include <../Parameters.scad>
use <888_3003.scad>
use <888_3005.scad>
